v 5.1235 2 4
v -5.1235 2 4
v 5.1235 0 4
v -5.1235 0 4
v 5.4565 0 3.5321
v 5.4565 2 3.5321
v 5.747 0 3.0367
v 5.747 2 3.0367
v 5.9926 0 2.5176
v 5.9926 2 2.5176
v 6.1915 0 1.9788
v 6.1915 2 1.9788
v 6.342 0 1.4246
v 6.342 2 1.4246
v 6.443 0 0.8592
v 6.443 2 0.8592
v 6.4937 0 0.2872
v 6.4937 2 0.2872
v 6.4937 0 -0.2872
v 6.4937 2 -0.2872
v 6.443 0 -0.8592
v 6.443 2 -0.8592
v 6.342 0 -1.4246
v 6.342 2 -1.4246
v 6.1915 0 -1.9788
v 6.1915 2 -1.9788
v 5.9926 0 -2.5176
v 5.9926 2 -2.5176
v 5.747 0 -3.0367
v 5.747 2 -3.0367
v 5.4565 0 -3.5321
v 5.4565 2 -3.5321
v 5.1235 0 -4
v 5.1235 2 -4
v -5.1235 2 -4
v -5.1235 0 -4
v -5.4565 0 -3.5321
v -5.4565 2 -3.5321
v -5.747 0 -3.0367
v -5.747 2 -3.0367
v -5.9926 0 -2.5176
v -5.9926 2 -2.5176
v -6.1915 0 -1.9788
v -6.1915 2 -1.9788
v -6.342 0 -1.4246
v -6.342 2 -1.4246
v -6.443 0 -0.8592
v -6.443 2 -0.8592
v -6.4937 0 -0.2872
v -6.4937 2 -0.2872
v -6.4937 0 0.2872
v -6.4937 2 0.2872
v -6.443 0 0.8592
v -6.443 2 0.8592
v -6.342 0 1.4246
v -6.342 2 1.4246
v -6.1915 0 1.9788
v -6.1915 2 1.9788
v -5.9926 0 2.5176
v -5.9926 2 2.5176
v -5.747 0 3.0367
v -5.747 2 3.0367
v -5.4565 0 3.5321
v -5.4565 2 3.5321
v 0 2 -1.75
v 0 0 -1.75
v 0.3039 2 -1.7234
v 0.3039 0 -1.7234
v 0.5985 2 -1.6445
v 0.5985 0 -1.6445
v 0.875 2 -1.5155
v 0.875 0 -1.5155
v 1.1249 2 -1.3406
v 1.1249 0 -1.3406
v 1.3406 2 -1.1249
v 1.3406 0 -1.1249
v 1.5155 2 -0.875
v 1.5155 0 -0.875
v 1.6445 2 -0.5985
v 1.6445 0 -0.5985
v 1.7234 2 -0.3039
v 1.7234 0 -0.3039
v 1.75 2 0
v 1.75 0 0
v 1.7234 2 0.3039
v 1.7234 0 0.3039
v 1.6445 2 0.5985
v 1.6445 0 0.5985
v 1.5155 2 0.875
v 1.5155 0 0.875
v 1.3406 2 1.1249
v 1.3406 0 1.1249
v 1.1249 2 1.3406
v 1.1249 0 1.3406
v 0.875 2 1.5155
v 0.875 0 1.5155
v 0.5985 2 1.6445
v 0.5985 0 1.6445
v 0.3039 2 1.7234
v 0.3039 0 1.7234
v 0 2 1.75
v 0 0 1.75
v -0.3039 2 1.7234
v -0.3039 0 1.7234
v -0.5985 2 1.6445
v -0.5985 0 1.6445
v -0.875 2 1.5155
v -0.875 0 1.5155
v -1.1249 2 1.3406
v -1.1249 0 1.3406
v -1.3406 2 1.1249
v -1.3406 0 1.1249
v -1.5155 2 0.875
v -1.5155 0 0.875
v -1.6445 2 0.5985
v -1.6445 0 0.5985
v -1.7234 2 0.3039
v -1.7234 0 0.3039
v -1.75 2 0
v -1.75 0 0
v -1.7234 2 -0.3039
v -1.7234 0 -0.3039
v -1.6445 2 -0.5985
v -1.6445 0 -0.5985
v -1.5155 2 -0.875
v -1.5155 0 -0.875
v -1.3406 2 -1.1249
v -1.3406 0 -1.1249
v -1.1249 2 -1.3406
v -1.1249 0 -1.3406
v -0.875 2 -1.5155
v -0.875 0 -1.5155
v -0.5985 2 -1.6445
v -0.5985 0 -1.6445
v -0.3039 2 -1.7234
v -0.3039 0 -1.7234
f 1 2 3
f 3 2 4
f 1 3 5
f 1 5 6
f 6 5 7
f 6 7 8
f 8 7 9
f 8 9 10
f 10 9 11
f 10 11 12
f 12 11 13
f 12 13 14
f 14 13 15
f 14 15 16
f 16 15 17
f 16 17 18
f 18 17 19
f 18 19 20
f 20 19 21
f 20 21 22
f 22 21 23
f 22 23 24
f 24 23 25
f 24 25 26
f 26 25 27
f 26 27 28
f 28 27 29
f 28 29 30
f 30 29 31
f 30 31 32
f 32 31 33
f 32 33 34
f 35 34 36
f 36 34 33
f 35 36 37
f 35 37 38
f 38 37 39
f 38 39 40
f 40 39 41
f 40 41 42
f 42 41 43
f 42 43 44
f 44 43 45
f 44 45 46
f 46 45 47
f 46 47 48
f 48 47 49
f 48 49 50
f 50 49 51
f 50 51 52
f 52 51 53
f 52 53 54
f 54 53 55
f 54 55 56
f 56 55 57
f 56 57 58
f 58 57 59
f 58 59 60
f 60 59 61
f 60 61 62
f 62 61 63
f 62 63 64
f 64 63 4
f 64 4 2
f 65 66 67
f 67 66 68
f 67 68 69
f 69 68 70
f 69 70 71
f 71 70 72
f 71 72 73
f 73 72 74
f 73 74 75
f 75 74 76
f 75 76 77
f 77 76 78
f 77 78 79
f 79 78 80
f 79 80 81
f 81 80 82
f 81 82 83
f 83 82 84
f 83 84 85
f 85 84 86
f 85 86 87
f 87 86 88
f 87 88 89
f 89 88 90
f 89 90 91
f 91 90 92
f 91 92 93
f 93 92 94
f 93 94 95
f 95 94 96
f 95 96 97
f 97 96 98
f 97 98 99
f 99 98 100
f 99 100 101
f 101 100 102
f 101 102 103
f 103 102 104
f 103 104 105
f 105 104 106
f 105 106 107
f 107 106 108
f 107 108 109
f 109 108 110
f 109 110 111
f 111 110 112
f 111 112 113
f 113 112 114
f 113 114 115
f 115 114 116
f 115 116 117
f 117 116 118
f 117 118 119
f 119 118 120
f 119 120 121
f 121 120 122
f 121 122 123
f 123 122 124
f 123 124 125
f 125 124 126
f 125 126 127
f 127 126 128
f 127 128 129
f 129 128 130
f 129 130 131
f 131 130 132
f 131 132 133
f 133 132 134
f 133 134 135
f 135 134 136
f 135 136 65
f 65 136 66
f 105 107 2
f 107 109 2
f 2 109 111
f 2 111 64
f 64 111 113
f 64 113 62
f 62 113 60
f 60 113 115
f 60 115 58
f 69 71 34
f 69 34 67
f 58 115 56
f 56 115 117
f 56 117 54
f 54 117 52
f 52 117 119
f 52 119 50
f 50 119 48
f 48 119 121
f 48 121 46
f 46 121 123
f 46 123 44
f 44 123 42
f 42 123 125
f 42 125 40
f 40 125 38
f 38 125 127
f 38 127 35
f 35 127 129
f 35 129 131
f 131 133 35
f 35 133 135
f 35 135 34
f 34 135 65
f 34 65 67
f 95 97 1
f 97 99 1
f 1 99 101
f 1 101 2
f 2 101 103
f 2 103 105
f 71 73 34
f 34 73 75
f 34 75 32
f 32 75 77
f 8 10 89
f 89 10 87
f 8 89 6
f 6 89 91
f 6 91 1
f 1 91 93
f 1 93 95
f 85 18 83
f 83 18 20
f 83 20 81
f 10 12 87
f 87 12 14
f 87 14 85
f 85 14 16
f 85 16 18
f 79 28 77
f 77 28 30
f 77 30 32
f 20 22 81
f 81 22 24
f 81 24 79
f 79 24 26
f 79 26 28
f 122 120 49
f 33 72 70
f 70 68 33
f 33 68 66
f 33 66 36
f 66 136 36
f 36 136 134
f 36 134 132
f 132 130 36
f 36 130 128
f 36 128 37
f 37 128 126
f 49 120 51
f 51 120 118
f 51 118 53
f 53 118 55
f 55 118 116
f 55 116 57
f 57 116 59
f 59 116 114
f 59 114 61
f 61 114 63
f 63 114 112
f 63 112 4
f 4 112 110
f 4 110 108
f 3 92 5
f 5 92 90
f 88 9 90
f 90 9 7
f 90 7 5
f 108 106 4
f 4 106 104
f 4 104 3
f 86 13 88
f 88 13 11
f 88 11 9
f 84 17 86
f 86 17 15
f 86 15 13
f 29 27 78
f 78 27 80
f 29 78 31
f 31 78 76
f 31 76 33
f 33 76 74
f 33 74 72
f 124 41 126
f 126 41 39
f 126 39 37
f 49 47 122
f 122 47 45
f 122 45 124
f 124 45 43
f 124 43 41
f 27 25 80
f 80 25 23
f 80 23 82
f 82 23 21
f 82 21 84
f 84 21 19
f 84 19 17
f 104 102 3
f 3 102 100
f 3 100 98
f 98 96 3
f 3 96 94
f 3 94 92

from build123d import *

# Parameters (mm, degrees)
BOSS_EXTRUDE1_DEPTH = 2


with BuildPart() as part:
    # Sketch1 → Boss-Extrude1 (new body)
    with BuildSketch(Plane(origin=(0, 0, 0), x_dir=(1, 0, 0), z_dir=(0, 1, 0))):
        with BuildLine():
            ThreePointArc((-5.123475383, 4), (-6.146242348, 2.115113473), (-6.5, 0))
            Line((-6.5, 0), (-1.75, 0))
            ThreePointArc((-1.75, 0), (-1.237436867, 1.237436867), (0, 1.75))
            Line((0, 1.75), (0, 4))
            Line((0, 4), (-5.123475383, 4))
        make_face()
        with BuildLine():
            Line((0, 4), (0, 1.75))
            ThreePointArc((0, 1.75), (1.237436867, 1.237436867), (1.75, 0))
            Line((1.75, 0), (6.5, 0))
            ThreePointArc((6.5, 0), (6.146242348, 2.115113473), (5.123475383, 4))
            Line((5.123475383, 4), (0, 4))
        make_face()
        with BuildLine():
            Line((-1.75, 0), (-6.5, 0))
            ThreePointArc((-6.5, 0), (-6.146242348, -2.115113473), (-5.123475383, -4))
            Line((-5.123475383, -4), (0, -4))
            Line((0, -4), (0, -1.75))
            ThreePointArc((0, -1.75), (-1.237436867, -1.237436867), (-1.75, 0))
        make_face()
        with BuildLine():
            Line((0, -1.75), (0, -4))
            Line((0, -4), (5.123475383, -4))
            ThreePointArc((5.123475383, -4), (6.146242348, -2.115113473), (6.5, 0))
            Line((6.5, 0), (1.75, 0))
            ThreePointArc((1.75, 0), (1.237436867, -1.237436867), (0, -1.75))
        make_face()
    extrude(amount=BOSS_EXTRUDE1_DEPTH)


solid = part.part
